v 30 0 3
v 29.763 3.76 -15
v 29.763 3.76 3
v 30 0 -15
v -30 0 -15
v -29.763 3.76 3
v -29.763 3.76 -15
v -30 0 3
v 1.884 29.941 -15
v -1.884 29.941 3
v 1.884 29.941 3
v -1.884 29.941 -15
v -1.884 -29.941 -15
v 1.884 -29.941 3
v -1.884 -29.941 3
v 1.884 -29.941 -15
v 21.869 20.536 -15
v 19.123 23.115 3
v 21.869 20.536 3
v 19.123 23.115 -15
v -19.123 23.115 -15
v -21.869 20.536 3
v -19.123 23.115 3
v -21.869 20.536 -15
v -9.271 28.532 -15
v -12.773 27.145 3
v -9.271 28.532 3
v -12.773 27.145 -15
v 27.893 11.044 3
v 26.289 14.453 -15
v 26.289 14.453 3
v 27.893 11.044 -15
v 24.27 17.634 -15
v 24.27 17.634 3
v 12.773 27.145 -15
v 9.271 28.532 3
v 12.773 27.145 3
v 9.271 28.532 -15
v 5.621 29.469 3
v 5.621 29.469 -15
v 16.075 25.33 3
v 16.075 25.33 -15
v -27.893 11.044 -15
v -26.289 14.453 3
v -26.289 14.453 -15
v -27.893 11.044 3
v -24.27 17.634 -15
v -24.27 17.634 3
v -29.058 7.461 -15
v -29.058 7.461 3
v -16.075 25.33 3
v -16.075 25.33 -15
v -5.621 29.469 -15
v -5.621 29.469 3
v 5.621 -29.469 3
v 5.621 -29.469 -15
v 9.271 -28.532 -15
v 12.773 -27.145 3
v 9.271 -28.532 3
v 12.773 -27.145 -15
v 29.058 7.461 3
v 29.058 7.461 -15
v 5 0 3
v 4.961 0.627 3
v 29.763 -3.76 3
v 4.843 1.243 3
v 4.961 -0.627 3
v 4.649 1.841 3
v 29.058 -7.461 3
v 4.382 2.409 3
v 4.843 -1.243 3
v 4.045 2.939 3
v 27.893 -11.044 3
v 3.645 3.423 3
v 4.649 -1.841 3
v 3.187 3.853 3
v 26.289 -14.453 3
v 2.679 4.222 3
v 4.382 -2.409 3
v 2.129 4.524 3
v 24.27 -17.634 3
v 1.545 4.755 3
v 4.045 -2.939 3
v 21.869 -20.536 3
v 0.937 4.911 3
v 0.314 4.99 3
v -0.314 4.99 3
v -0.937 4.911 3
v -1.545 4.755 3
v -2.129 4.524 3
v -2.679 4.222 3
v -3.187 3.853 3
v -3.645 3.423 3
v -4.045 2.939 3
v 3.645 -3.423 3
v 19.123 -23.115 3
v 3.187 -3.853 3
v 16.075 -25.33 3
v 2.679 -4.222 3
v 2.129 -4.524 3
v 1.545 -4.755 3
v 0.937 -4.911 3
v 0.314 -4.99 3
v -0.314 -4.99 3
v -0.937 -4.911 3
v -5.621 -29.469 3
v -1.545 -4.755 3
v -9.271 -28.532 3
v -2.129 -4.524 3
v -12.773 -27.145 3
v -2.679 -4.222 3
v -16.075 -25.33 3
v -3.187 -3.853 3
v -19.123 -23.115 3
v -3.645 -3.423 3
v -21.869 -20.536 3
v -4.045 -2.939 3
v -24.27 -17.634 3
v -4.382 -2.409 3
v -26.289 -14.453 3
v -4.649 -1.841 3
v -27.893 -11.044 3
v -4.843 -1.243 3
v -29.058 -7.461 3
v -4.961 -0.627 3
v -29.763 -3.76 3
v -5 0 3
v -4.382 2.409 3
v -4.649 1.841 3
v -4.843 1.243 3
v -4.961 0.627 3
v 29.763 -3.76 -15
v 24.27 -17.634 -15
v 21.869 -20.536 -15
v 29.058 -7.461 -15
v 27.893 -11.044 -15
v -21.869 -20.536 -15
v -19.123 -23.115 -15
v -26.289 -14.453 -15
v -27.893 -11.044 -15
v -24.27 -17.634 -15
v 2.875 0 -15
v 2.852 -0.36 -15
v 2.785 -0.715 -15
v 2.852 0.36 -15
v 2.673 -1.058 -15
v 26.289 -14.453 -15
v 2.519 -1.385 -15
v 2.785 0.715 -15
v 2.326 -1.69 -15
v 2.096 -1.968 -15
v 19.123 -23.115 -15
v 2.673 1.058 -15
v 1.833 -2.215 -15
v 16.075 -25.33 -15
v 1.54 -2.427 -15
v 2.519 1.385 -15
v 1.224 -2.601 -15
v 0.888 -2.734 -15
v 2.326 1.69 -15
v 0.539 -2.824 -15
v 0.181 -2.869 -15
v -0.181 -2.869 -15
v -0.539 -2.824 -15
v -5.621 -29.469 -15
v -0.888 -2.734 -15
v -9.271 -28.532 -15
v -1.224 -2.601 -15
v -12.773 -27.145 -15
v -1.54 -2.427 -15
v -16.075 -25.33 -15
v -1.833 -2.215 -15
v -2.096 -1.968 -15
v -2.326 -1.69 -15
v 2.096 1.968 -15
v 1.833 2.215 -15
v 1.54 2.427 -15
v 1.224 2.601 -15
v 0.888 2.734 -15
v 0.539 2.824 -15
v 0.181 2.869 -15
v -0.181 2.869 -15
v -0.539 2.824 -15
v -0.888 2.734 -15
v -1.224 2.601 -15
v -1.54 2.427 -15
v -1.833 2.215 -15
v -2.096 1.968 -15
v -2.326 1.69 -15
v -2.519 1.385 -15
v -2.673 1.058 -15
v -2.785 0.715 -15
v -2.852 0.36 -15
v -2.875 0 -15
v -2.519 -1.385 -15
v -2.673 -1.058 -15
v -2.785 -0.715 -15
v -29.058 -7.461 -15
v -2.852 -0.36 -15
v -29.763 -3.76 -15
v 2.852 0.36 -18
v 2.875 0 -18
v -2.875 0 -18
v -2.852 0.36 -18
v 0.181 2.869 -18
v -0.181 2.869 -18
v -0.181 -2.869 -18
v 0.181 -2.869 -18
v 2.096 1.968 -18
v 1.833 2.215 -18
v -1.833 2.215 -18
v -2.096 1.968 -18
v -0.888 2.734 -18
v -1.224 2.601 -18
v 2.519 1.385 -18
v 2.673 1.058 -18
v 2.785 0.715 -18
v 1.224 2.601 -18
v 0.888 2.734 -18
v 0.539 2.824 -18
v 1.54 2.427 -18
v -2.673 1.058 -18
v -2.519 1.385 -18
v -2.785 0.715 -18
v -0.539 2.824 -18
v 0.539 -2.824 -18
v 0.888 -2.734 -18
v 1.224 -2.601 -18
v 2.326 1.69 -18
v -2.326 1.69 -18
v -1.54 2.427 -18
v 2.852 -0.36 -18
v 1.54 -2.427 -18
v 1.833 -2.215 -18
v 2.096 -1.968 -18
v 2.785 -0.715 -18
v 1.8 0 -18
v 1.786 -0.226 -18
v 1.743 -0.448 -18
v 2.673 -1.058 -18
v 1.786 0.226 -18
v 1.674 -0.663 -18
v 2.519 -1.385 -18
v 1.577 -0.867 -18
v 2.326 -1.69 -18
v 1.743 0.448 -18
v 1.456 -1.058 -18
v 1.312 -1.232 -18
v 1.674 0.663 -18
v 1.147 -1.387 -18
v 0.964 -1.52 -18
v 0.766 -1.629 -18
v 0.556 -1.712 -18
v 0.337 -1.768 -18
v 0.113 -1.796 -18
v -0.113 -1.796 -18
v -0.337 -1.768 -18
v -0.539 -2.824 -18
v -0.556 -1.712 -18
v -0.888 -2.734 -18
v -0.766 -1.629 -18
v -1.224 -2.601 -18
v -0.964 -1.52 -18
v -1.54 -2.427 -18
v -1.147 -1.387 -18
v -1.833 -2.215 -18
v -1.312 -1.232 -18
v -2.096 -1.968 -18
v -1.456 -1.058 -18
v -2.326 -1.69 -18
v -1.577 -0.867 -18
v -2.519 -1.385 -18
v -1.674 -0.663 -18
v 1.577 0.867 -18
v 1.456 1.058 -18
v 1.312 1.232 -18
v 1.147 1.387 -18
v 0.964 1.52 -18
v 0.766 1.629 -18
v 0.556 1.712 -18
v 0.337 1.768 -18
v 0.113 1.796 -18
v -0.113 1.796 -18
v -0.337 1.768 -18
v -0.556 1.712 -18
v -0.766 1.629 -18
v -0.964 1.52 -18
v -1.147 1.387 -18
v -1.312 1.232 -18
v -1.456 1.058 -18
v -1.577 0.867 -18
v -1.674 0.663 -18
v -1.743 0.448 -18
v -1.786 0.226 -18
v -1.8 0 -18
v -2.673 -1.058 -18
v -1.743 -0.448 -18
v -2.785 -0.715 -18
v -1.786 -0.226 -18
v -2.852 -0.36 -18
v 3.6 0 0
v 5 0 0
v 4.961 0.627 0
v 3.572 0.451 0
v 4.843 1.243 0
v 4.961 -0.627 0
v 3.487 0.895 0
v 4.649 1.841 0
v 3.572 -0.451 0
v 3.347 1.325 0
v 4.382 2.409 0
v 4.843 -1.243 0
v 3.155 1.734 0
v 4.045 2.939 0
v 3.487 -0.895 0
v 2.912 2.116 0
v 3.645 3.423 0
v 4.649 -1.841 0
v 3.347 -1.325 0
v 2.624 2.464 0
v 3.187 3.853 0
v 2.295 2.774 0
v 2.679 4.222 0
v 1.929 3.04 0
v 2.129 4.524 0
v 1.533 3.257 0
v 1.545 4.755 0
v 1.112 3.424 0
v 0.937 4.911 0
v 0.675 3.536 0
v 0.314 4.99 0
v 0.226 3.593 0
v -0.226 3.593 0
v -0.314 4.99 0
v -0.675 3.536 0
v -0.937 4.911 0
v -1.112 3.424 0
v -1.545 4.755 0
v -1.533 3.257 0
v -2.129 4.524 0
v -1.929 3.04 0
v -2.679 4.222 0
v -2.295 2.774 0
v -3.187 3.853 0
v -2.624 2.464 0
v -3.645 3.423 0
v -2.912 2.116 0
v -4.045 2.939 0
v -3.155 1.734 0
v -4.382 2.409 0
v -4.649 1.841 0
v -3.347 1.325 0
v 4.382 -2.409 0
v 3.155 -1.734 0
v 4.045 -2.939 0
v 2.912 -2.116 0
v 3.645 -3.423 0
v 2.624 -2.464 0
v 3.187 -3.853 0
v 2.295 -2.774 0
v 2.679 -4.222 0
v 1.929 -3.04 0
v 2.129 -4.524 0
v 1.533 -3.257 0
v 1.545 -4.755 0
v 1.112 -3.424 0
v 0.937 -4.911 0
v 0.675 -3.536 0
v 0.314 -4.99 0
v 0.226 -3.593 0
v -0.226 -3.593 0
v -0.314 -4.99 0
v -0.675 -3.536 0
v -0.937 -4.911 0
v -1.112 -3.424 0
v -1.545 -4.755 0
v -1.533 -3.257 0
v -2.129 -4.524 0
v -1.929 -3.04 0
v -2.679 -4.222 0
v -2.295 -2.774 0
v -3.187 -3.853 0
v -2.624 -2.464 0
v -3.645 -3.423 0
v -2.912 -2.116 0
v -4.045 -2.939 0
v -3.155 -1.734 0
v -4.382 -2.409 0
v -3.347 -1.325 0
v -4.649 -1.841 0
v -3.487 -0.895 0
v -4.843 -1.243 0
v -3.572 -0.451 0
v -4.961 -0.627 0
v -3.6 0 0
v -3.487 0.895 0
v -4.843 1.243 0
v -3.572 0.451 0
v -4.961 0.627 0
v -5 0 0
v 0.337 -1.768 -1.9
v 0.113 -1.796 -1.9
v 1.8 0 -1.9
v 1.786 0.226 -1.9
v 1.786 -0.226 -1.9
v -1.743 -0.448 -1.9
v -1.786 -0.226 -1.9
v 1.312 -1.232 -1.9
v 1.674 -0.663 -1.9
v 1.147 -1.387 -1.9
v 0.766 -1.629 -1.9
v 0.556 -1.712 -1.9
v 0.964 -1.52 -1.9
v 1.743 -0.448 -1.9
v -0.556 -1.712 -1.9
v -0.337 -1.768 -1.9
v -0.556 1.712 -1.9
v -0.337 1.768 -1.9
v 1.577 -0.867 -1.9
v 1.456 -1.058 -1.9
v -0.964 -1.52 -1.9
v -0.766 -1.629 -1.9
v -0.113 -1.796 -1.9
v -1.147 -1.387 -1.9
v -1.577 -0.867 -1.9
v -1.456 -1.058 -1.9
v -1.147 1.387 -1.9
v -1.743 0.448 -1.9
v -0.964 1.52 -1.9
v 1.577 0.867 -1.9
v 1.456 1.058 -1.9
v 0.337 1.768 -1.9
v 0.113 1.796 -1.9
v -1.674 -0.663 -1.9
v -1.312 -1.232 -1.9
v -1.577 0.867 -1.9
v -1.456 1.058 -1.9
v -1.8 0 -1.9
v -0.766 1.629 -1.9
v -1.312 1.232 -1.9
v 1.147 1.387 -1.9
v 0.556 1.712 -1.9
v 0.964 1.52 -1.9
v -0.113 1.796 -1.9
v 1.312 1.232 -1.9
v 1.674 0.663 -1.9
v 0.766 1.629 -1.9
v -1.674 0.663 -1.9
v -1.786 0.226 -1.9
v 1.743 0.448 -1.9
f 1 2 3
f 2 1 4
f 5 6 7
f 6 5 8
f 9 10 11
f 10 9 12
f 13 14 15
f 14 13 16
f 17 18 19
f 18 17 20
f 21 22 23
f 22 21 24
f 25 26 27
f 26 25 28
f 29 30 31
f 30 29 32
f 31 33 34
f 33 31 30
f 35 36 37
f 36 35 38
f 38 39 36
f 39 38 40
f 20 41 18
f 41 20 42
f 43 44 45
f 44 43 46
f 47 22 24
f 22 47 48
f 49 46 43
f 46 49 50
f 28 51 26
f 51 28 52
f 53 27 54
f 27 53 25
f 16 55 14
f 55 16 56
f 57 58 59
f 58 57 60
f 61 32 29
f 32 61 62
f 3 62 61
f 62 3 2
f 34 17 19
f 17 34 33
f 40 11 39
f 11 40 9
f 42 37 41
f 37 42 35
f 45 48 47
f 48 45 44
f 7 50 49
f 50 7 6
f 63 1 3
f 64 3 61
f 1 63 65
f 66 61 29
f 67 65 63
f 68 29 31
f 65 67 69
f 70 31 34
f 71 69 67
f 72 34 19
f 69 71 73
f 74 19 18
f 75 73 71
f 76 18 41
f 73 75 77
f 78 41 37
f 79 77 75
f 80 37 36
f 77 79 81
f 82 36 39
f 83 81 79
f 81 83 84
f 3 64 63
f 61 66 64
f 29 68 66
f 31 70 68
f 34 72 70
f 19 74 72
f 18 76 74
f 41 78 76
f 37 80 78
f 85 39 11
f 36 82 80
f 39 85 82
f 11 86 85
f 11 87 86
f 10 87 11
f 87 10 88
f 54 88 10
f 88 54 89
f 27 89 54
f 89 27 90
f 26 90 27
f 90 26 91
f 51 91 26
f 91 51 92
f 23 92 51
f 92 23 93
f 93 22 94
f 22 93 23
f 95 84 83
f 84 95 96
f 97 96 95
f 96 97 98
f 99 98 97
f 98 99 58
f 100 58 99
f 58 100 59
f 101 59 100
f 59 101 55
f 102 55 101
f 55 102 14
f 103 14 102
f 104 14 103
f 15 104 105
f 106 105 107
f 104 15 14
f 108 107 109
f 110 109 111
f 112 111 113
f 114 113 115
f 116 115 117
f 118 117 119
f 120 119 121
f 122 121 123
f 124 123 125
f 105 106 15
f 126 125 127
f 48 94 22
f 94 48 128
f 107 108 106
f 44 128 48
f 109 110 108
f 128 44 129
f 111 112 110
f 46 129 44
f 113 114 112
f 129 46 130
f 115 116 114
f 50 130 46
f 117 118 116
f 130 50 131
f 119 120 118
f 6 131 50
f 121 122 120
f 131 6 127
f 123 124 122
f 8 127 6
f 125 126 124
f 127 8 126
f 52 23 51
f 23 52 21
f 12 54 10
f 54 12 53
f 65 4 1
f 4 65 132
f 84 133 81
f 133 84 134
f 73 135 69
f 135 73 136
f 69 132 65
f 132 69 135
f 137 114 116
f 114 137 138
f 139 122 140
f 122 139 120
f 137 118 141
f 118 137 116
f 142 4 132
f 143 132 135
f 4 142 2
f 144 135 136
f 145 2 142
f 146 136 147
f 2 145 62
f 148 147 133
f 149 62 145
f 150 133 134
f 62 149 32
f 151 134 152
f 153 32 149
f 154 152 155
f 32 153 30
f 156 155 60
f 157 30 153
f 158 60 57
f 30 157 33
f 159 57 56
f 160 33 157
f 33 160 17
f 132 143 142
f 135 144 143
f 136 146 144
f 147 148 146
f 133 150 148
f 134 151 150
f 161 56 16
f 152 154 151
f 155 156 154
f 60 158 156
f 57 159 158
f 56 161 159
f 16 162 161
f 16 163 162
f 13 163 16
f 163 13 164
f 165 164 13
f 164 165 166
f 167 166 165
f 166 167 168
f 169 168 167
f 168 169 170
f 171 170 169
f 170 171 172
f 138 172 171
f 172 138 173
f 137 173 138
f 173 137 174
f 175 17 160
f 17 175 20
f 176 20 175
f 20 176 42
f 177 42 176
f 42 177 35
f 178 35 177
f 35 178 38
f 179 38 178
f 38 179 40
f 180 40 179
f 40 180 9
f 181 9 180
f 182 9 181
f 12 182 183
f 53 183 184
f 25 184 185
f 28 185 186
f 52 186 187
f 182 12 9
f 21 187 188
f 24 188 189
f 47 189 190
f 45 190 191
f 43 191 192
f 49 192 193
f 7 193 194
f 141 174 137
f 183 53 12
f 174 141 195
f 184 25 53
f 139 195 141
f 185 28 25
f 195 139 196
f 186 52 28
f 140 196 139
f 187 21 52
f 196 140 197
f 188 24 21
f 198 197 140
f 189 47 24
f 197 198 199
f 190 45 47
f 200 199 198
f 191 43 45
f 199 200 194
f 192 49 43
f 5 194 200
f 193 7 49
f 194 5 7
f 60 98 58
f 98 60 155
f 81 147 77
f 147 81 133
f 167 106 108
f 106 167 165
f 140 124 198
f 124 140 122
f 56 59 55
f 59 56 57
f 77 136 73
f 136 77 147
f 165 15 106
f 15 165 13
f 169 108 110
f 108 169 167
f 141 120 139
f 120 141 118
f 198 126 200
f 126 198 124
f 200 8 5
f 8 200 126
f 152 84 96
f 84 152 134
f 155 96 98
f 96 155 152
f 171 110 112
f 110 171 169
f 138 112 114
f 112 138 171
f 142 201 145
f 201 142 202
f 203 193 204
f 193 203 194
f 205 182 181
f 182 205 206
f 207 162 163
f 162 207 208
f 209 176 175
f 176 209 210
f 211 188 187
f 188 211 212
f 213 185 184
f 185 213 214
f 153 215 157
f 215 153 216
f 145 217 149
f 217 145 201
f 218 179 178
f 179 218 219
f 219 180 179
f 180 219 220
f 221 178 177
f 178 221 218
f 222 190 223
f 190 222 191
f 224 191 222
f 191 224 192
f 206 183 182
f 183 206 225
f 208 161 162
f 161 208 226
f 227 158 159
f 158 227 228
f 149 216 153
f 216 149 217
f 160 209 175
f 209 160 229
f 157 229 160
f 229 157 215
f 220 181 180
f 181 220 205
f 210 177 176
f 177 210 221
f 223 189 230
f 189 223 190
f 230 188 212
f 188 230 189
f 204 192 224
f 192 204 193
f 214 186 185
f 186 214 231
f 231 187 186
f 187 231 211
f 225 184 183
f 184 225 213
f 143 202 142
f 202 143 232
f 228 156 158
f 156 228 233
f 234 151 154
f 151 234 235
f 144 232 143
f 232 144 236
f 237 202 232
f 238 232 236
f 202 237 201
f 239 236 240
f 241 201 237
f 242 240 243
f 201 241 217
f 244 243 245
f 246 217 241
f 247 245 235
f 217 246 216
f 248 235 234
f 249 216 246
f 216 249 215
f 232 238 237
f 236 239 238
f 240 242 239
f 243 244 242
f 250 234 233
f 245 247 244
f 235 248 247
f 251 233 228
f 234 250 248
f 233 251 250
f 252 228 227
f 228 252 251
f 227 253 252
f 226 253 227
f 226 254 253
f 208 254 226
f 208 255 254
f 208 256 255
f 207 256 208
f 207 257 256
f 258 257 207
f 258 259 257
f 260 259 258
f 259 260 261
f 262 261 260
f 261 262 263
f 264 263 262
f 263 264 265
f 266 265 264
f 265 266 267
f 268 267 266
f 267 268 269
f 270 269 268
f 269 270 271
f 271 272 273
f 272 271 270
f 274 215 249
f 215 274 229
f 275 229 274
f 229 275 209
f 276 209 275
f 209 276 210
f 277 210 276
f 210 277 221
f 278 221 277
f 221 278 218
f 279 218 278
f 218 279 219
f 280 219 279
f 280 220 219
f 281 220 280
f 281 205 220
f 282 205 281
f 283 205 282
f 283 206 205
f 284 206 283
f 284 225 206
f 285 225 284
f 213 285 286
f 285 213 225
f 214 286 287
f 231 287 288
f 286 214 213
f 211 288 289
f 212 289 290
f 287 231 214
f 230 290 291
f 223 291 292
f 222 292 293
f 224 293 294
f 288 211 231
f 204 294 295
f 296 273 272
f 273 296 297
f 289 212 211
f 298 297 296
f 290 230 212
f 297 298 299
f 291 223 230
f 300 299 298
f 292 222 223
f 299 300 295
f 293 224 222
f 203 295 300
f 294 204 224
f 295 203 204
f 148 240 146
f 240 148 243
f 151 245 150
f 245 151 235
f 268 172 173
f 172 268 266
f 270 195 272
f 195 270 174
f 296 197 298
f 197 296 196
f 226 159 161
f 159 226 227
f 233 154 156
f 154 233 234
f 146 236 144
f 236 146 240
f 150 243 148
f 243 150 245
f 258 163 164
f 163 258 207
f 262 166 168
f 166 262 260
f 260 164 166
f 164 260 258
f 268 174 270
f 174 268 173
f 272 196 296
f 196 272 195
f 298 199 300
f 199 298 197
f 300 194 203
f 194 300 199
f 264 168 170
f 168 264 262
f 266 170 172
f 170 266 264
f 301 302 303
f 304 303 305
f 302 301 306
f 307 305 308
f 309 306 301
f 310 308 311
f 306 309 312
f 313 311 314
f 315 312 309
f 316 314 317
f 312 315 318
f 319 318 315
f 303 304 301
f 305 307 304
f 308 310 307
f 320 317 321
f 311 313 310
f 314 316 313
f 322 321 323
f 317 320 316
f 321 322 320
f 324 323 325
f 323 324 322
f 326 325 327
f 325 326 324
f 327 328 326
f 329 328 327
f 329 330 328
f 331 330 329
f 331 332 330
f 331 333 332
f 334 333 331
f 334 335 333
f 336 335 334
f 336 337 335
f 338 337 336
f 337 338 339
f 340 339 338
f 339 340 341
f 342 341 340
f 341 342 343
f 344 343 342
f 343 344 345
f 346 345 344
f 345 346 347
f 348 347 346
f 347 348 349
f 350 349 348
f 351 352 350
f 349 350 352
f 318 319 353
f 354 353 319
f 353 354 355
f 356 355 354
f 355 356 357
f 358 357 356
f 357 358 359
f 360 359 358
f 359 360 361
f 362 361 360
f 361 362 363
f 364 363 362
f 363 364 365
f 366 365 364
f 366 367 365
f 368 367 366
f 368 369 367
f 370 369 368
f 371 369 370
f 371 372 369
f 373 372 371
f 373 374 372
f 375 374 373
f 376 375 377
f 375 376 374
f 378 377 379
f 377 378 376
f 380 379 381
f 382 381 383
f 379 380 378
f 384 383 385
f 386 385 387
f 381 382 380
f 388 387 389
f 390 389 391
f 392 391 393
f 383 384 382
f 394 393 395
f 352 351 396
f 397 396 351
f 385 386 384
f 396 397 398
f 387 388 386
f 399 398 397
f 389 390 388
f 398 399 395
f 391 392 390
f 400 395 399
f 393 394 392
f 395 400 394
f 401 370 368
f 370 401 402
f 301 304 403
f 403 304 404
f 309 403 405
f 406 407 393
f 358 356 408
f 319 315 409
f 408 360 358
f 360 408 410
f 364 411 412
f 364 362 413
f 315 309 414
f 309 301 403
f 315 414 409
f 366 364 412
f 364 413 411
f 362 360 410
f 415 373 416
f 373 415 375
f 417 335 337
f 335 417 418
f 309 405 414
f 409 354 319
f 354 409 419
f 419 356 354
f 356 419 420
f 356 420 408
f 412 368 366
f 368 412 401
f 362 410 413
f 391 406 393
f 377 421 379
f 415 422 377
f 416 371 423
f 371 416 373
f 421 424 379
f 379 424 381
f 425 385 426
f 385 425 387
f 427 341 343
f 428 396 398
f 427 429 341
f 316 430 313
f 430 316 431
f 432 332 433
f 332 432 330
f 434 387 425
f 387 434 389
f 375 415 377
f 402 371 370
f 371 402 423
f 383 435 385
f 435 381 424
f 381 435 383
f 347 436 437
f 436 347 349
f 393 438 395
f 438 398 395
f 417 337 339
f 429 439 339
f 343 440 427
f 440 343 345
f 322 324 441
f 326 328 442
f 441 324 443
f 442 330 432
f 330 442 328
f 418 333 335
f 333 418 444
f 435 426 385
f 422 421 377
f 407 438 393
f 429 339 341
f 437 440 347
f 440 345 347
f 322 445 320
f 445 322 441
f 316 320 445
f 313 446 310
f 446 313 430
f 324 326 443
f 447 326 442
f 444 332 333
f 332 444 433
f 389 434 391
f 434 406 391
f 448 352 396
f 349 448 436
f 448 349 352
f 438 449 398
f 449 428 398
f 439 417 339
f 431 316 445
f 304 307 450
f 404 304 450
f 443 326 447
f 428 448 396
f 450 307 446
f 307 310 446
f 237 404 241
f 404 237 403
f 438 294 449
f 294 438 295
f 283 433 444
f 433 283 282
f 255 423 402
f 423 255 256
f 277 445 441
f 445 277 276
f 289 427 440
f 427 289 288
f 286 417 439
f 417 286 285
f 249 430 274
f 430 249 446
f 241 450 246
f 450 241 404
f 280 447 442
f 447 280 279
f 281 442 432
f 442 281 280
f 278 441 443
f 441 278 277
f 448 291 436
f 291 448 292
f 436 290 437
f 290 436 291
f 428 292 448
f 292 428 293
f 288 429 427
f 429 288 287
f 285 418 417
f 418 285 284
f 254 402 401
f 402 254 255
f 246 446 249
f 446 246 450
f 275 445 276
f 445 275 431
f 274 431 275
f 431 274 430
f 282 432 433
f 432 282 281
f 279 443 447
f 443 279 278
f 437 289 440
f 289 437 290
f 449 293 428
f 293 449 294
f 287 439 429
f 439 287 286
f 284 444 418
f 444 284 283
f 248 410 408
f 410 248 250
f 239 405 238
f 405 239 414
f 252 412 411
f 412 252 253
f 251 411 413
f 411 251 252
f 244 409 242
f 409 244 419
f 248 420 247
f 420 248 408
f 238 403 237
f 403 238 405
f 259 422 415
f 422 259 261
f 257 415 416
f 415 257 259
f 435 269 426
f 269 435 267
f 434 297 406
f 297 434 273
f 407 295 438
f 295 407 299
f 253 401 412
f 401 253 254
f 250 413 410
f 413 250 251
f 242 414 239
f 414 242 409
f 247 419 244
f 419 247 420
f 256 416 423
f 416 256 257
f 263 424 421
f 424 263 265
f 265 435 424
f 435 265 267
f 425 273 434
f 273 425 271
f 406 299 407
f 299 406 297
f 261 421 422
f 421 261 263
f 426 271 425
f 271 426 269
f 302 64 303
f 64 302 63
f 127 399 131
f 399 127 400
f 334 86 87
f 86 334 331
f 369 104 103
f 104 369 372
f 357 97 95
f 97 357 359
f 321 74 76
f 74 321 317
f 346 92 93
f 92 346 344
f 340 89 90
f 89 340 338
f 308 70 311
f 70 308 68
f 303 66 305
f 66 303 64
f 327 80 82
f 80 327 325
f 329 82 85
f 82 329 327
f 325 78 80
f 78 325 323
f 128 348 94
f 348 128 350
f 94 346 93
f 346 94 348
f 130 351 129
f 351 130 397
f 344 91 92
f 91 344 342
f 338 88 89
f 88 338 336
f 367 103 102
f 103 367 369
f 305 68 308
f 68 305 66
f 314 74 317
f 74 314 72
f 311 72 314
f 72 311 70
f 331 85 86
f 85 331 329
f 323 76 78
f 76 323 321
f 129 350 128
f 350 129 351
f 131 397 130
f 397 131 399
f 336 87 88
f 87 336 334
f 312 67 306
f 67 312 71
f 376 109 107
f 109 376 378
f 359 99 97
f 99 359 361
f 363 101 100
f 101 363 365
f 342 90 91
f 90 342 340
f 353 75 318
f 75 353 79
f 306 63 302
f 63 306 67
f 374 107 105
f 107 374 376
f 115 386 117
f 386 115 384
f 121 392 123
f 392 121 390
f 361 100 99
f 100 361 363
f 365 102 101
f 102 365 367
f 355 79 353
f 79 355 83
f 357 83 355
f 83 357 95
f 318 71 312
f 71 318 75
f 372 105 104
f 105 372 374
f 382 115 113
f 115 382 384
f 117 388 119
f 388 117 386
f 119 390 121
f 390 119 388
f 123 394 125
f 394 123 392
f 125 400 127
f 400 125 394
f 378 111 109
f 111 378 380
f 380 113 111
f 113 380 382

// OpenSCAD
$fn = 50;


difference() {
	union() {
		translate(v = [0, 0, -15.0000000000]) {
			cylinder(h = 18, r = 30.0000000000);
		}
		#translate(v = [0, 0, -18.0000000000]) {
			cylinder(h = 18, r = 2.8750000000);
		}
	}
	union() {
		translate(v = [0, 0, 0]) {
			rotate(a = [0, 0, 0]) {
				difference() {
					union() {
						translate(v = [0, 0, -18.0000000000]) {
							cylinder(h = 18, r = 1.5000000000);
						}
						translate(v = [0, 0, -1.9000000000]) {
							cylinder(h = 1.9000000000, r1 = 1.8000000000, r2 = 3.6000000000);
						}
						translate(v = [0, 0, -18.0000000000]) {
							cylinder(h = 18, r = 1.8000000000);
						}
						translate(v = [0, 0, -18.0000000000]) {
							cylinder(h = 18, r = 1.5000000000);
						}
					}
					union();
				}
			}
		}
		#cylinder(h = 3, r = 5.0000000000);
	}
}
